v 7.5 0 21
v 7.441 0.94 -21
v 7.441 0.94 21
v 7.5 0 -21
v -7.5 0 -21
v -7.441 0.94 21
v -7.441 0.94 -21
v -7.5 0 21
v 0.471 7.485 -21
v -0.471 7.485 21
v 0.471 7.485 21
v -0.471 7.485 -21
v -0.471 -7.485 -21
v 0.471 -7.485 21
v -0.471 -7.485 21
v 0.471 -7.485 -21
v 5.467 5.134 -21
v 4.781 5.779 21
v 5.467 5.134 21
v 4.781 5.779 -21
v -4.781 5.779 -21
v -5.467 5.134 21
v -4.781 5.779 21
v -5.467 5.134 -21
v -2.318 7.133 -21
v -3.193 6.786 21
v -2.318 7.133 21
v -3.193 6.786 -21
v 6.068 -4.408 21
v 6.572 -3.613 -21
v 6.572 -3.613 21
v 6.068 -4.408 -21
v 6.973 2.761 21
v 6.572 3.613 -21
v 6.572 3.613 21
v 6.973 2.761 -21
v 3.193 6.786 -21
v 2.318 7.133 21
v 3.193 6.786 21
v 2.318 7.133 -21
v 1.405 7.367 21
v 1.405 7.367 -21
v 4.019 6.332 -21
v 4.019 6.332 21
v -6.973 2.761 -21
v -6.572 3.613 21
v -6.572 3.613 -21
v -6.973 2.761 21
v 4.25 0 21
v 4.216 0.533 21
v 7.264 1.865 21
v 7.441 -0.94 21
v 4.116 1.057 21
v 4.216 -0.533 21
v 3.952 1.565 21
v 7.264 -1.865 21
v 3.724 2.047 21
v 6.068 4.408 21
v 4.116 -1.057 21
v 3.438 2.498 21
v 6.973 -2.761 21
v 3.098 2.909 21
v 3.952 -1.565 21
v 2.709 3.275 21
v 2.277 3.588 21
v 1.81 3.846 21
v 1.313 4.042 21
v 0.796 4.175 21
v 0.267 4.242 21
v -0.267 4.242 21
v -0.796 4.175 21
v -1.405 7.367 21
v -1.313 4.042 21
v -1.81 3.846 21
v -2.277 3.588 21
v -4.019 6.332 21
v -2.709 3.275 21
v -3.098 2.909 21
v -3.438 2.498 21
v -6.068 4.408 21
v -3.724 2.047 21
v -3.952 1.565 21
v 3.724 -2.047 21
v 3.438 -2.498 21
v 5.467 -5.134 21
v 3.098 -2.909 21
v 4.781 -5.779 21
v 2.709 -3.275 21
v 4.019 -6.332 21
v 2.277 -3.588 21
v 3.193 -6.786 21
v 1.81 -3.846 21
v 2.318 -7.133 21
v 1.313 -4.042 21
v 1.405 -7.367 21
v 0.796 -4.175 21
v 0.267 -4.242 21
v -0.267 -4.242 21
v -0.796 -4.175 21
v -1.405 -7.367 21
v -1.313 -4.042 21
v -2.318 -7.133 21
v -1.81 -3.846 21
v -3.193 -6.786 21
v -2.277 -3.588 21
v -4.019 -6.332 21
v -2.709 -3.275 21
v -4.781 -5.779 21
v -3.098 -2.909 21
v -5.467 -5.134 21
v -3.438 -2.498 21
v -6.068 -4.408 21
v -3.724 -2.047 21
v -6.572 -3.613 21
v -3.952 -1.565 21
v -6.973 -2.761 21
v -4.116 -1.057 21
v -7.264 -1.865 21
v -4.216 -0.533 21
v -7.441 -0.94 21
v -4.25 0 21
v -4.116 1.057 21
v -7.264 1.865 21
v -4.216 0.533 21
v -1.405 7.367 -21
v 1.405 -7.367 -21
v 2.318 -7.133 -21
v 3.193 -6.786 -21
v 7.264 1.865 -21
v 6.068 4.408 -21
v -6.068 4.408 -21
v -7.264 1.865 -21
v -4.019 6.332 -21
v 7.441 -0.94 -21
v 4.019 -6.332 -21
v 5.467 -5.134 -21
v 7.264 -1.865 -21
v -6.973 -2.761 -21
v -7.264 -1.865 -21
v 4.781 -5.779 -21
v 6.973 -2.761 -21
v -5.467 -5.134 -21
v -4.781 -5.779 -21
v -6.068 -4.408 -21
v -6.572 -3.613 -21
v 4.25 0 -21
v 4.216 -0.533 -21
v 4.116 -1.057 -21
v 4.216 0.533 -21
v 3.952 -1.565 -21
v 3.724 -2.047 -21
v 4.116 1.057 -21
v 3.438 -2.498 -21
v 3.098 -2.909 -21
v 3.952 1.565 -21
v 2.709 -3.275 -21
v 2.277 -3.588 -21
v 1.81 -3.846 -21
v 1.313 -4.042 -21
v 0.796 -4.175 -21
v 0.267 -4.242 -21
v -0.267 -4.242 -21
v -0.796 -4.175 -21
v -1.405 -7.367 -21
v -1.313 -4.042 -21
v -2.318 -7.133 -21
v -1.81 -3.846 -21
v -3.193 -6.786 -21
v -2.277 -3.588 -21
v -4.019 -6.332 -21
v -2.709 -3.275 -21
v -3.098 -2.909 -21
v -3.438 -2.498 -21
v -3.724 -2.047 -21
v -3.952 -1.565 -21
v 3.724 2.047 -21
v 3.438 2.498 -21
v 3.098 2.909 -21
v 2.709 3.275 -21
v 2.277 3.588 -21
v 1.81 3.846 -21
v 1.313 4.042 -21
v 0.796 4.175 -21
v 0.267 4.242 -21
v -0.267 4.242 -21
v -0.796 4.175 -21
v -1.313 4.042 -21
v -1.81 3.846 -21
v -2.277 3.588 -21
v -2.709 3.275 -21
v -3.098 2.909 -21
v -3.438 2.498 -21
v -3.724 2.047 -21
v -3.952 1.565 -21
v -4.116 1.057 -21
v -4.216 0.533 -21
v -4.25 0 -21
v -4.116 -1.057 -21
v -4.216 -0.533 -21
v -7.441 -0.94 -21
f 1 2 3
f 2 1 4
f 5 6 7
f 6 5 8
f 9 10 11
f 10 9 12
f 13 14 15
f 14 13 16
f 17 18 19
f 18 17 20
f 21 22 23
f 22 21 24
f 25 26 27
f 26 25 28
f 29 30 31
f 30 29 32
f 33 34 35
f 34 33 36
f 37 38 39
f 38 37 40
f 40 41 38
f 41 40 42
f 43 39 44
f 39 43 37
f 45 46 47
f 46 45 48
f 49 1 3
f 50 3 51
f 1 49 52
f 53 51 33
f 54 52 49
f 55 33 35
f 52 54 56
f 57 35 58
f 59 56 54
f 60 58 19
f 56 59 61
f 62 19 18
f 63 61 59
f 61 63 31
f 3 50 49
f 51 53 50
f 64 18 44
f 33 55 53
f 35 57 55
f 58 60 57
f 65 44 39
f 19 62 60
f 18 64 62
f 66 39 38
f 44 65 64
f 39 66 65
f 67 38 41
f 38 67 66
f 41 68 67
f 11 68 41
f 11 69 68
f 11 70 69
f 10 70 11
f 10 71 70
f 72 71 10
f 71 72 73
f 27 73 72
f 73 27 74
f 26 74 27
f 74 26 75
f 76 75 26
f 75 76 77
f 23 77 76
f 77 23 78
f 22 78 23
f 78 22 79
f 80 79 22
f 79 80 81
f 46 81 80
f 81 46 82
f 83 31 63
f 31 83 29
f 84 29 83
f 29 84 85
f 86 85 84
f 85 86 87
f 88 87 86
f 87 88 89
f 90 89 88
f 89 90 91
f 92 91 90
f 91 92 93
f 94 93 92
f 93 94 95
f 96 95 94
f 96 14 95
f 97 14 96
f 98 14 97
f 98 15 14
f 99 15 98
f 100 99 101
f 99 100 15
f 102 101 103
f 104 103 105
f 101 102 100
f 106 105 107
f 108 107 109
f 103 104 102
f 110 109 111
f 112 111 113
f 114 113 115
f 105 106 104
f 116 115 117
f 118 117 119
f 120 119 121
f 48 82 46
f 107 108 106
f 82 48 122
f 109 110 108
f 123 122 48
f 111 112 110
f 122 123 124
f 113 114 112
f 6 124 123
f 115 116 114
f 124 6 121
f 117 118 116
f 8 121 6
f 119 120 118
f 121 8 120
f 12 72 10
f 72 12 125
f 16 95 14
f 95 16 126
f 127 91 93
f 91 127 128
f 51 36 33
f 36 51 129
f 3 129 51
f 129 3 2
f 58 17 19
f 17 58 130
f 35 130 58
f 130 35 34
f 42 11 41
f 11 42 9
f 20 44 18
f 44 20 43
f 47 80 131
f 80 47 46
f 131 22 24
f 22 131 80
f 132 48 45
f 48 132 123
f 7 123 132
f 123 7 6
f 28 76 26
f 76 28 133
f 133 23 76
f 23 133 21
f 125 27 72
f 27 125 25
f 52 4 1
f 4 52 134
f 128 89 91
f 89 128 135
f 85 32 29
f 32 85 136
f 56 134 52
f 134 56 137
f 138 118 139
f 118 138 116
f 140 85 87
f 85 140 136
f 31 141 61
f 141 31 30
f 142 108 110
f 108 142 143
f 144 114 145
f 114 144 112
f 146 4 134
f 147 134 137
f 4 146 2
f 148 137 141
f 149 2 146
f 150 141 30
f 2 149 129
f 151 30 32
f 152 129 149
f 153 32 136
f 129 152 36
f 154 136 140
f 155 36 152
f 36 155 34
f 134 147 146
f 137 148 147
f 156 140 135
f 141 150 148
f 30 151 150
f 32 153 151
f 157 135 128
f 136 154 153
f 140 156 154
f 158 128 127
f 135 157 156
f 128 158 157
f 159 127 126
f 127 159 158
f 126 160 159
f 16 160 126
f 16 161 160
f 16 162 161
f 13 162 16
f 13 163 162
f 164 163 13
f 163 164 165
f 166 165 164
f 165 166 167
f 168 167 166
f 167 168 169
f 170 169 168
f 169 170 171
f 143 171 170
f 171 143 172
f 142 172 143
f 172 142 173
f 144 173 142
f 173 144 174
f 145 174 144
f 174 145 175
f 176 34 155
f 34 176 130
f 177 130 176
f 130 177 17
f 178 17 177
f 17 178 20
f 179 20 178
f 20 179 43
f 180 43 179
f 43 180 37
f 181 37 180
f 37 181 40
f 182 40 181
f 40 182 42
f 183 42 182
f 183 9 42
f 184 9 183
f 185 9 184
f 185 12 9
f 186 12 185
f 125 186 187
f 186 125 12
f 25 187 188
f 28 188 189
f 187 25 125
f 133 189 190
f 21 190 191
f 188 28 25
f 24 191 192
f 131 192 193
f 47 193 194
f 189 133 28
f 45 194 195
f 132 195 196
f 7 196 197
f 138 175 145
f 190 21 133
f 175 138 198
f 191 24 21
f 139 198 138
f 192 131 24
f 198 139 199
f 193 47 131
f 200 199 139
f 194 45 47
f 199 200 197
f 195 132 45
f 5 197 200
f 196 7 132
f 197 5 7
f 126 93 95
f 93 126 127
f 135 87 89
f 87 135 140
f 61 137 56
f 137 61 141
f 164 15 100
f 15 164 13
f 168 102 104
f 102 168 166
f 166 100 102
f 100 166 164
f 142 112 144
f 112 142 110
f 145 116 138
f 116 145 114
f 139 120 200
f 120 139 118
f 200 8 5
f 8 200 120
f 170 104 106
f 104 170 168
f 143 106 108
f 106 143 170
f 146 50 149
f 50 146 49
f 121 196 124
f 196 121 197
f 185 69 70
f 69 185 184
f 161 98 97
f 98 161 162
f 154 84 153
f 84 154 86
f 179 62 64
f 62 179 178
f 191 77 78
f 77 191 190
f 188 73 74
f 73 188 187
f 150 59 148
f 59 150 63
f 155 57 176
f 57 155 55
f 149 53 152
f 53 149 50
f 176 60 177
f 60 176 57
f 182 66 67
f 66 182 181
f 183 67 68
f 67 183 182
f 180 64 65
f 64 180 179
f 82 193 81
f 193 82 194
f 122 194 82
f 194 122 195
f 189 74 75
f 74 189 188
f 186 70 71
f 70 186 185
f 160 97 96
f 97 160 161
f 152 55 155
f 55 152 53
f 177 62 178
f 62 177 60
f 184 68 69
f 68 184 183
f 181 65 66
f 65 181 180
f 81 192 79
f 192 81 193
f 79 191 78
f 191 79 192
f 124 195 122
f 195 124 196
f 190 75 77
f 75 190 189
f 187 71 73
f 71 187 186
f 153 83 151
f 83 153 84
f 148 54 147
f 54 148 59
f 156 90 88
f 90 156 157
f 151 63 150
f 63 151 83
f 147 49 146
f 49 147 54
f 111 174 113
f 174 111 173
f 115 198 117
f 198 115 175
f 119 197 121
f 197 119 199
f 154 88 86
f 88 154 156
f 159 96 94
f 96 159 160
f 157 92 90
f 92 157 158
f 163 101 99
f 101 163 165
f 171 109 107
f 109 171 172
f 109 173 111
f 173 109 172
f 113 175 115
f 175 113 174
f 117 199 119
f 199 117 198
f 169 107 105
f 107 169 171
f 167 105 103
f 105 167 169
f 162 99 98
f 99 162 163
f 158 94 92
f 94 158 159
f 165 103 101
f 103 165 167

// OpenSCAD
$fn = 50;


difference() {
	union() {
		translate(v = [0, 0, -21.0000000000]) {
			cylinder(h = 42, r = 7.5000000000);
		}
	}
	union() {
		translate(v = [0, 0, -100.0000000000]) {
			cylinder(h = 200, r = 4.2500000000);
		}
	}
}
